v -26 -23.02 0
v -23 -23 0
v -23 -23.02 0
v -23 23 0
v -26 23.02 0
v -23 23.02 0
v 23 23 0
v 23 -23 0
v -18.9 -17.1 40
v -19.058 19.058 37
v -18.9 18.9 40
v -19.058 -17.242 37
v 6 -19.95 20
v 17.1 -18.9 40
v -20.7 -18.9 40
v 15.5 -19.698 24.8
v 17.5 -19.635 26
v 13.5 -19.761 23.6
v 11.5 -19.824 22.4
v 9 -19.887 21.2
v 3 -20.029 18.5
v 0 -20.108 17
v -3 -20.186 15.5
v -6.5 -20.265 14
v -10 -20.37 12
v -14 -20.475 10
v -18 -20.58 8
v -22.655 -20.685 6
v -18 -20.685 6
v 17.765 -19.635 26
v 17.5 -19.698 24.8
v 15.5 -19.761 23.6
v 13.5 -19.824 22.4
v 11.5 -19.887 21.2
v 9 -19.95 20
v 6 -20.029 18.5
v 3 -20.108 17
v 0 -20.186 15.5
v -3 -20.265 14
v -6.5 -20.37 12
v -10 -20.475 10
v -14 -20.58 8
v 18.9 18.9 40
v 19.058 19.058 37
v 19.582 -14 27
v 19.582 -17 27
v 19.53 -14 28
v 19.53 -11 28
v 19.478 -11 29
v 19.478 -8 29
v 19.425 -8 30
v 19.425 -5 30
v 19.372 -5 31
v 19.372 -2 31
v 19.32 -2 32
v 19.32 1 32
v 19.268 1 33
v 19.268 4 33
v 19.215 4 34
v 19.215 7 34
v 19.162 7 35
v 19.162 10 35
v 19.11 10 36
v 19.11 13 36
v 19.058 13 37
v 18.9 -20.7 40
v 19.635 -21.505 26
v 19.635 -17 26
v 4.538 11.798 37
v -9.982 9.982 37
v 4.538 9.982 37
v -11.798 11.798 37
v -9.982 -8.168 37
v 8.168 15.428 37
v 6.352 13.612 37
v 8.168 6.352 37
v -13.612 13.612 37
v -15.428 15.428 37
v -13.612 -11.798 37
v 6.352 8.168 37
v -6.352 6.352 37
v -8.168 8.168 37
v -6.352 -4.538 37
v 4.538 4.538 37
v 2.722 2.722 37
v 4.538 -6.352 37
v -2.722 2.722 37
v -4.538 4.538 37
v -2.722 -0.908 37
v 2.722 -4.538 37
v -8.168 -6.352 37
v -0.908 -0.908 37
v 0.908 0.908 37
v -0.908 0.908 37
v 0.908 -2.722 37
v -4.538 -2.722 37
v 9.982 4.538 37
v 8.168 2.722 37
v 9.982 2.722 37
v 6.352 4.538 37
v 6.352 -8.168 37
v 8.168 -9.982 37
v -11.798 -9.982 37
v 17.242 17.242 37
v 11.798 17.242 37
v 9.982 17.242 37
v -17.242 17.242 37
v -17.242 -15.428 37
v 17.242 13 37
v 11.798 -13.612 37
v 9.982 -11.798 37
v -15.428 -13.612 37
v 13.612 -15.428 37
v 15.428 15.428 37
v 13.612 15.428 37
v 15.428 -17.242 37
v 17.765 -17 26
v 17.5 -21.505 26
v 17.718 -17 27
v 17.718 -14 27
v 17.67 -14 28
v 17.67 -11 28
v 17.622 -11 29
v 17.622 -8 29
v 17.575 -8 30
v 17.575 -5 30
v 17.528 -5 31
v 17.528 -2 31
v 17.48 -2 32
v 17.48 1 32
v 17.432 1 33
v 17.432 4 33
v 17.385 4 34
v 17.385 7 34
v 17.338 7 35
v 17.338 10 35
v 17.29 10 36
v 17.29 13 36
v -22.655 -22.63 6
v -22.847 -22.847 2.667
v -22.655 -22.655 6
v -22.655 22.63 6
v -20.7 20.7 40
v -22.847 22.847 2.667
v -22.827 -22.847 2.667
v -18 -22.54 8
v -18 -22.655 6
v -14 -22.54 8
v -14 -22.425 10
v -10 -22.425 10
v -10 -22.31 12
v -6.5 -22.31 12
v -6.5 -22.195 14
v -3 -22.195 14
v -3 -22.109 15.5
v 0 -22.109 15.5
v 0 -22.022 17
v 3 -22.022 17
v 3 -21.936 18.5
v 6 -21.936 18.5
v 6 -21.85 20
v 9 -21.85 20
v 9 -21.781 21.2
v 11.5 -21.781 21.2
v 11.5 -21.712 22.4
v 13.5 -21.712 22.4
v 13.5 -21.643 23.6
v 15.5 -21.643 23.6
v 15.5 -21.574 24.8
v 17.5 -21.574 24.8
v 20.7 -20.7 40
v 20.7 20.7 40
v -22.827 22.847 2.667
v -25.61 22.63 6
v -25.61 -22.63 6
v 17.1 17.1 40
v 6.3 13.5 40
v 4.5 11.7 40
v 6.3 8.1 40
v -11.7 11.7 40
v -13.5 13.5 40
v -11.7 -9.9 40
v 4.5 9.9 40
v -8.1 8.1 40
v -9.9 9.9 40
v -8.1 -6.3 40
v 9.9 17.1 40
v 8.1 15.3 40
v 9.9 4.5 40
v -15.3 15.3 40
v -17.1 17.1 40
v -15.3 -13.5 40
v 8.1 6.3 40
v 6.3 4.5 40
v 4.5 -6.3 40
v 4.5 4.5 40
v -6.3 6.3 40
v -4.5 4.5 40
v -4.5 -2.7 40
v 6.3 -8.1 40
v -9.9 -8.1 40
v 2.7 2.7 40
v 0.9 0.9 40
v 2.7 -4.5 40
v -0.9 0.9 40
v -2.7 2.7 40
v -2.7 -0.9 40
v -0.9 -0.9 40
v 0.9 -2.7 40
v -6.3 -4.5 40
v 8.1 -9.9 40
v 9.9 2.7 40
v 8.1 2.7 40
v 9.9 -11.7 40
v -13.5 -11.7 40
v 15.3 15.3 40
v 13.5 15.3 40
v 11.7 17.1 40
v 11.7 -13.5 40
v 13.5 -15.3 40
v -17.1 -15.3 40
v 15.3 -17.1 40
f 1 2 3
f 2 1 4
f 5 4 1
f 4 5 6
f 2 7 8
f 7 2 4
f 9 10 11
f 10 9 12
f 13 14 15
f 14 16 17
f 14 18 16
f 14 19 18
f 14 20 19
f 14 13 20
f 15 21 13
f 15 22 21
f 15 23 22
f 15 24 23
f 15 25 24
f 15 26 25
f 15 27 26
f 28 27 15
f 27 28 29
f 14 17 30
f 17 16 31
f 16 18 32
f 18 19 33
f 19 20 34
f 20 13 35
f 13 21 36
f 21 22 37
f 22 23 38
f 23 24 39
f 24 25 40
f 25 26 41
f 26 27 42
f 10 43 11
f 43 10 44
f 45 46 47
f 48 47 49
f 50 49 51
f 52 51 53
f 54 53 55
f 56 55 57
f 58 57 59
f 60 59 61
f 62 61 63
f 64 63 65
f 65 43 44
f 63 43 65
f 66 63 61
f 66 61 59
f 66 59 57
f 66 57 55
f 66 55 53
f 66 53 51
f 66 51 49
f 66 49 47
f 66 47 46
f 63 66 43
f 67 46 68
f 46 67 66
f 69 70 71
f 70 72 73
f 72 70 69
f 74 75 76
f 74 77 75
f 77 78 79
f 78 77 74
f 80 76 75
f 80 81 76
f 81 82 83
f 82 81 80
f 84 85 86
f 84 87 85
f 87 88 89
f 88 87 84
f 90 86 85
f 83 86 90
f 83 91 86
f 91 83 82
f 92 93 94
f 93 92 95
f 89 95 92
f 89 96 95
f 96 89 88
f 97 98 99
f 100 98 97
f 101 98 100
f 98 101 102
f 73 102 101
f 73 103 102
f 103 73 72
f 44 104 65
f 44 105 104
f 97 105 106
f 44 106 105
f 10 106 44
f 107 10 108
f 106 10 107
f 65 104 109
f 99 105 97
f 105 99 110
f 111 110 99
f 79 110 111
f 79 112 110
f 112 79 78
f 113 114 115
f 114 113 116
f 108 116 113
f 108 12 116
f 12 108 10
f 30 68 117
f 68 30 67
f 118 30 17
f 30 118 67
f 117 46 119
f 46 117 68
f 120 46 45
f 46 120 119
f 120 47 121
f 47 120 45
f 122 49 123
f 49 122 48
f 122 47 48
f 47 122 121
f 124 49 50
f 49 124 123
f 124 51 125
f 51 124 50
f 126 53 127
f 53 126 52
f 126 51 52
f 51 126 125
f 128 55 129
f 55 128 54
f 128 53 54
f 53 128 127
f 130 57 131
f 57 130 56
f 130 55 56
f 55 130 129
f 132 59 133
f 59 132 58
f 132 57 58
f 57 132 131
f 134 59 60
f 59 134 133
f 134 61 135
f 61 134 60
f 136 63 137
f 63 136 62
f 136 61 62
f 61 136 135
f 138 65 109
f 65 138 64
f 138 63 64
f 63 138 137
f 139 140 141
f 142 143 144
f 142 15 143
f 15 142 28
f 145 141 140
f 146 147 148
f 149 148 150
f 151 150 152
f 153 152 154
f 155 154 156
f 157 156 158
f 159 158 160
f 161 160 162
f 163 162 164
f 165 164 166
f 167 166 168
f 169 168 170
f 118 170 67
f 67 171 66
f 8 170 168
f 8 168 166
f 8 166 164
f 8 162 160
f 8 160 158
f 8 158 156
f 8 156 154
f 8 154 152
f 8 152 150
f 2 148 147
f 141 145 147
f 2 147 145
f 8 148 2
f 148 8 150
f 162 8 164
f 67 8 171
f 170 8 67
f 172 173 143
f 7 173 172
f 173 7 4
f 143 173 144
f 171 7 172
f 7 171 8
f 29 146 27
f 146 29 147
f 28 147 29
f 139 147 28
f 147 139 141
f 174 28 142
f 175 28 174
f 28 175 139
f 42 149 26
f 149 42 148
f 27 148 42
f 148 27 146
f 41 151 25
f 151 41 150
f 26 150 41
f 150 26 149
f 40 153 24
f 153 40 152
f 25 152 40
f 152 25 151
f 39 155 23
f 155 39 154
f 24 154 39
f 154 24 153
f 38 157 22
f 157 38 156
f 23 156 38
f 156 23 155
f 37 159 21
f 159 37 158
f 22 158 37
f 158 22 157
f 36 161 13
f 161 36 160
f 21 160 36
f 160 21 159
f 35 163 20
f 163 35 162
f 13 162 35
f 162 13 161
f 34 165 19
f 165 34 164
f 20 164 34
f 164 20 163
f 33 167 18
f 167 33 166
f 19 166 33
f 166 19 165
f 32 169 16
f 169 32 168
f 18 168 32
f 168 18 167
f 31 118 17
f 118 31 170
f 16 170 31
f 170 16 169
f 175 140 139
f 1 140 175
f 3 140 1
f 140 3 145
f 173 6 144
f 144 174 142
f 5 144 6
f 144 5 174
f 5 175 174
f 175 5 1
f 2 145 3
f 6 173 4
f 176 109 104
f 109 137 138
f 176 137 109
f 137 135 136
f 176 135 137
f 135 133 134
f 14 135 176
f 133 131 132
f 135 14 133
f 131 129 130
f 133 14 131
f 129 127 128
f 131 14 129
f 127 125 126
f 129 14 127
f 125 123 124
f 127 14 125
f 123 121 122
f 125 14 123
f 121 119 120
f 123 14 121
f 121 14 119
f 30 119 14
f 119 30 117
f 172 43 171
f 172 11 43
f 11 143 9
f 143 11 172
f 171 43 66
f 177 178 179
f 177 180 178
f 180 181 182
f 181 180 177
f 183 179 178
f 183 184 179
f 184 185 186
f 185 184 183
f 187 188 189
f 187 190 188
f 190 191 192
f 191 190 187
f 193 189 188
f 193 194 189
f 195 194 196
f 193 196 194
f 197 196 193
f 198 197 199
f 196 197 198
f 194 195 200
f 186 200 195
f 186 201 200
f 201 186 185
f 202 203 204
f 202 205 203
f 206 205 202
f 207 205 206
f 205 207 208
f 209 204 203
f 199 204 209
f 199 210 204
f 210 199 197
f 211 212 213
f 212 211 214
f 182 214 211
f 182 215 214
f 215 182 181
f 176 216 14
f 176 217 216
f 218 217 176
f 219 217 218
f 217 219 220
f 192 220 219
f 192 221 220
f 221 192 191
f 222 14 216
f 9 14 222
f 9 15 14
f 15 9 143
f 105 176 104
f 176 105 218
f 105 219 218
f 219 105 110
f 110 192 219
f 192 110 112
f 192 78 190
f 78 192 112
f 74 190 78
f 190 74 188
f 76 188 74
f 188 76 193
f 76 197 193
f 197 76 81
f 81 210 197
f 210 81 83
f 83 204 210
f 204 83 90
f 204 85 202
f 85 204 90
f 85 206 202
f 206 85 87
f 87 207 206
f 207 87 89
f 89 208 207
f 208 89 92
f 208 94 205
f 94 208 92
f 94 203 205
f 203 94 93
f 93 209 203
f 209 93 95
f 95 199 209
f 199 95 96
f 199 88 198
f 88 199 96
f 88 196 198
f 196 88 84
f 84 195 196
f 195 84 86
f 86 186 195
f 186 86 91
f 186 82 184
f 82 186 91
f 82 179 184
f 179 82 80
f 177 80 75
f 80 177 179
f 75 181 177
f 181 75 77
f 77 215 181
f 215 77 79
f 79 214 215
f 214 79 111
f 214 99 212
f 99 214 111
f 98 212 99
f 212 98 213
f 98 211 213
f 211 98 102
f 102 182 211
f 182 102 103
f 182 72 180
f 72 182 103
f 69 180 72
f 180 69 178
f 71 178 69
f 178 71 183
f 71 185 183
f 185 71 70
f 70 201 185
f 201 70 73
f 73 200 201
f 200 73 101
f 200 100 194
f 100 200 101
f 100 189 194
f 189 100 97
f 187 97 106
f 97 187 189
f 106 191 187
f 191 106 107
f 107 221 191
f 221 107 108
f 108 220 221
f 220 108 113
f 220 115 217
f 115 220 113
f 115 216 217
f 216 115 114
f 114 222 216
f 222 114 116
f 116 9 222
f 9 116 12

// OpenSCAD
module base(){
    
    
    difference() {
        rotate([0,0,45])
        cylinder(r1 = 35, r2 = 27, h = 38, $fn = 4);
        translate([-51,0,42])
        rotate([0,4,0])
        cube([70,70,70], center = true);
        translate([-53.5,0,39.5])
        cube([70,70,70], center = true);
        
        
        //primera paret
        
        rotate([0,0,90])
        translate([0,18,3]){  
            translate([-51,0,42])
            rotate([0,4,0])
            cube([70,8,70], center = true);
            translate([-53.5,0,39.5])
            cube([70,8,70], center = true);
        }
        
        rotate([0,0,90])
        translate([0.2,12.1,5]){  
            translate([-51,0,42])
            rotate([0,4,0])
            cube([70,4,70], center = true);
            translate([-53.5,0,39.5])
            cube([70,4,70], center = true);
        }
        
        rotate([0,0,90])
        translate([0.35,8.1,7]){  
            translate([-51,0,42])
            rotate([0,4,0])
            cube([70,4,70], center = true);
            translate([-53.5,0,39.5])
            cube([70,4,70], center = true);
        }
        
        rotate([0,0,90])
        translate([0.5,5,9]){  
            translate([-51,0,42])
            rotate([0,4,0])
            cube([70,4,70], center = true);
            translate([-53.5,0,39.5])
            cube([70,4,70], center = true);
        }
        
        rotate([0,0,90])
        translate([0.6,2,10.5]){  
            translate([-51,0,42])
            rotate([0,4,0])
            cube([70,4,70], center = true);
            translate([-53.5,0,39.5])
            cube([70,4,70], center = true);
        }
        
        rotate([0,0,90])
        translate([0.7,-1,12]){  
            translate([-51,0,42])
            rotate([0,4,0])
            cube([70,4,70], center = true);
            translate([-53.5,0,39.5])
            cube([70,4,70], center = true);
        }
        
        rotate([0,0,90])
        translate([0.8,-4,14]){  
            translate([-51,0,42])
            rotate([0,4,0])
            cube([70,4,70], center = true);
            translate([-53.5,0,39.5])
            cube([70,4,70], center = true);
        }
        
        rotate([0,0,90])
        translate([0.9,-7,15.5]){  
            translate([-51,0,42])
            rotate([0,4,0])
            cube([70,4,70], center = true);
            translate([-53.5,0,39.5])
            cube([70,4,70], center = true);
        }
        
        rotate([0,0,90])
        translate([1,-9,17]){  
            translate([-51,0,42])
            rotate([0,4,0])
            cube([70,4,70], center = true);
            translate([-53.5,0,39.5])
            cube([70,4,70], center = true);
        }
        
        rotate([0,0,90])
        translate([1.1,-11,18.5]){  
            translate([-51,0,42])
            rotate([0,4,0])
            cube([70,4,70], center = true);
            translate([-53.5,0,39.5])
            cube([70,4,70], center = true);
        }
        
        rotate([0,0,90])
        translate([1.2,-13,19.5]){  
            translate([-51,0,42])
            rotate([0,4,0])
            cube([70,4,70], center = true);
            translate([-53.5,0,39.5])
            cube([70,4,70], center = true);
        }
        
        rotate([0,0,90])
        translate([1.3,-15,20.5]){  
            translate([-51,0,42])
            rotate([0,4,0])
            cube([70,4,70], center = true);
            translate([-53.5,0,39.5])
            cube([70,4,70], center = true);
        }
        
        rotate([-5,0,90])
        translate([1.4,-19.5,19.75]){  
            translate([-51,0,42])
            rotate([0,4,0])
            cube([70,4,70], center = true);
            translate([-53.5,0,39.5])
            cube([70,4,70], center = true);
        }
        
        //segona paret
        rotate([0,0,180])
        translate([-0.75,16,-6]){  
            translate([-16.85,0,43])
            rotate([0,5,0])
            cube([1.5,4,20], center = true);
        }
        rotate([0,0,180])
        translate([-0.75,14,-5]){  
            translate([-16.75,0,43])
            rotate([0,5,0])
            cube([1.5,4,20], center = true);
        }
        
        rotate([0,0,180])
        translate([-0.75,11,-4]){  
            translate([-16.65,0,43])
            rotate([0,5,0])
            cube([1.5,4,20], center = true);
        }
        
        rotate([0,0,180])
        translate([-0.75,8,-3]){  
            translate([-16.55,0,43])
            rotate([0,5,0])
            cube([1.5,4,20], center = true);
        }
        
        rotate([0,0,180])
        translate([-0.75,5,-2]){  
            translate([-16.45,0,43])
            rotate([0,5,0])
            cube([1.5,4,20], center = true);
        }
        
        rotate([0,0,180])
        translate([-0.75,2,-1]){  
            translate([-16.35,0,43])
            rotate([0,5,0])
            cube([1.5,4,20], center = true);
        }
        
        rotate([0,0,180])
        translate([-0.75,-1,0]){  
            translate([-16.25,0,43])
            rotate([0,5,0])
            cube([1.5,4,20], center = true);
        }
        
        rotate([0,0,180])
        translate([-0.75,-4,1]){  
            translate([-16.15,0,43])
            rotate([0,5,0])
            cube([1.5,4,20], center = true);
        }
        
        rotate([0,0,180])
        translate([-0.75,-7,2]){  
            translate([-16.05,0,43])
            rotate([0,5,0])
            cube([1.5,4,20], center = true);
        }
        
        rotate([0,0,180])
        translate([-0.75,-11,3]){  
            translate([-15.95,0,43])
            rotate([0,5,0])
            cube([1.5,4,20], center = true);
        }
        
        rotate([0,0,180])
        translate([-0.75,-15.5,3]){  
            translate([-15.95,0,43])
            rotate([0,5,0])
            cube([1.5,4,20], center = true);
        }
        
        
        rotate([0,0,180])
        translate([-0.75,-13,3]){  
            translate([-15.95,0,43])
            rotate([0,5,0])
            cube([1.5,4,20], center = true);
        }
        
        //laberint
        
        translate([1.3,16.6,37])
        rotate([90,0,90])
        cube([1.75,2,31.5], center = true);
    }
    
}

//base();


module paret(){
    translate([1.3,16.6,37])
    rotate([90,0,90])
    cube([1.75,5,31.5], center = true);
}




/////////////////////////////


//linear_extrude(height=30, scale=0.8)
//square(40, true);

//%linear_extrude(height=30, scale=0.8)
//square(50, true);
module lab(){
    difference(){
        translate([-11.5,-11.5,0])
        square(23);
        translate([-11.5,-11.5,0])
        polygon([[0,0],[22,0],[22,1],[0,1]]);
        translate([-11.5,-11.5,0])
        polygon([[22,0],[22,22],[21,22],[21,1]]);
        translate([-11.5,-11.5,0])
        polygon([[21,22],[1,22],[1,21],[21,21]]);
        translate([-11.5,-11.5,0])
        polygon([[1,22],[1,2],[2,2],[2,21]]);
        translate([-11.5,-11.5,0])
        polygon([[1,2],[20,2],[20,3],[1,3]]);
        translate([-11.5,-11.5,0])
        polygon([[20,2],[20,20],[19,20],[19,2]]);
        translate([-11.5,-11.5,0])
        polygon([[18,4],[18,21.1],[17,21.1],[17,4]]);
        translate([-11.5,-11.5,0])
        polygon([[18,4],[3,4],[3,5],[18,5]]);
        translate([-11.5,-11.5,0])
        polygon([[3,4],[3,20],[4,20],[4,5]]);
        translate([-11.5,-11.5,0])
        polygon([[3,20],[16,20],[16,19],[4,19]]);
        translate([-11.5,-11.5,0])
        polygon([[16,20],[16,15],[15,15],[15,20]]);
        translate([-11.5,-11.5,0])
        polygon([[16,14],[16,6],[15,6],[15,14]]);
        translate([-11.5,-11.5,0])
        polygon([[16,6],[5,6],[5,7],[15,7]]);
        translate([-11.5,-11.5,0])
        polygon([[5,6],[5,18],[6,18],[6,6]]);
        translate([-11.5,-11.5,0])
        polygon([[5,18],[14,18],[14,17],[5,17]]);
        translate([-11.5,-11.5,0])
        polygon([[15,15],[7,15],[7,16],[15,16]]);
        translate([-11.5,-11.5,0])
        polygon([[7,15],[7,8],[8,8],[8,15]]);
        translate([-11.5,-11.5,0])
        polygon([[7,8],[14,8],[14,9],[7,9]]);
        translate([-11.5,-11.5,0])
        polygon([[14,8],[14,14],[13,14],[13,8]]);
        translate([-11.5,-11.5,0])
        polygon([[14,14],[9,14],[9,13],[13,13]]);
        translate([-11.5,-11.5,0])
        polygon([[9,14],[9,10],[10,10],[10,14]]);
        translate([-11.5,-11.5,0])
        polygon([[9,10],[12,10],[12,11],[9,11]]);
        translate([-11.5,-11.5,0])
        polygon([[12,10],[12,12],[11,12],[11,10]]);
        translate([-11.5,-11.5,0])
        polygon([[17.1,14],[15.9,14],[15.9,13],[17.1,13]]);
    }
}

module corte(){
        difference(){
            translate([0,0,0])
            linear_extrude(height = 20, scale = 0.90)
            square(26, center = true);
            translate([1.5,0,0])
            linear_extrude(height = 20, scale = 0.90)
            square(26, center = true);
        }
}


module base(){
    difference(){
        linear_extrude(height = 20, scale = 0.90)
        square(26, center = true);
        
        translate([0,0,16])
        cube(26,center = true);
        translate([1.5,0,0])
        linear_extrude(height = 20, scale = 0.90)
        square(26, center = true);
        rotate([0,0,90])
        translate([-0.01,0,0])
        corte();
        rotate([0,0,-90])
        translate([-0.01,0,0])
        corte();
    }
}

module aux_med(){
    difference(){
        linear_extrude(height = 20, scale = 0.90)
        square(21, center = true);
        translate([0,0,30])
        cube(23,center = true);
    }
}

module medio(){
    difference(){
        linear_extrude(height = 20, scale = 0.90)
        square(21, center = true);
        translate([0,0,30])
        cube(23,center = true);
        
        translate([10,-11,23])
        cube([3,5,20], center = true);
        translate([10,-9.5,23.5])
        cube([3,5,20], center = true);
        translate([10,-8,24])
        cube([3,5,20], center = true);
        translate([10,-6.5,24.5])
        cube([3,5,20], center = true);
        translate([10,-5,25])
        cube([3,5,20], center = true);
        translate([10,-3.5,25.5])
        cube([3,5,20], center = true);
        translate([10,-2,26])
        cube([3,5,20], center = true);
        translate([10,-0.5,26.5])
        cube([3,5,20], center = true);
        translate([10,1,27])
        cube([3,5,20], center = true);
        translate([10,2.5,27.5])
        cube([3,5,20], center = true);
        translate([10,4,28])
        cube([3,5,20], center = true);
        
    }
}

module interior(){
    difference(){
        linear_extrude(height = 20, scale = 0.90)
        square(19, center = true);
        
        translate([0,0,30])
        cube(23,center = true);
    }
}

module exterior(){
    difference(){
        
        //base
        
        linear_extrude(height = 20, scale = 0.90)
        square(23, center = true);
        translate([0,0,30])
        cube(23,center = true);
        aux_med();
        
        //escalas
        
        translate([-10.5,-10,13])
        cube([3,5,20], center = true);
        translate([-8.5,-10,14])
        cube([3,5,20], center = true);
        translate([-6.5,-10,15])
        cube([3,5,20], center = true);
        translate([-4.75,-10,16])
        cube([3,5,20], center = true);
        translate([-3,-10,17])
        cube([3,5,20], center = true);
        translate([-1.5,-10,17.75])
        cube([3,5,20], center = true);
        translate([0,-10,18.5])
        cube([3,5,20], center = true);
        translate([1.5,-10,19.25])
        cube([3,5,20], center = true);
        translate([3,-10,20])
        cube([3,5,20], center = true);
        translate([4.25,-10,20.6])
        cube([3,5,20], center = true);
        translate([5.25,-10,21.2])
        cube([3,5,20], center = true);
        translate([6.25,-10,21.8])
        cube([3,5,20], center = true);
        translate([7.25,-10,22.4])
        cube([3,5,20], center = true);
        translate([9,-10,23])
        cube([3,5,20], center = true);
    }
}




module laber(){
    linear_extrude(height = 20, scale=0.90)
    lab();
}


module laberinto(){
    laber();
    medio();
    exterior();
    base();
    interior();
}

scale(2)
laberinto();
